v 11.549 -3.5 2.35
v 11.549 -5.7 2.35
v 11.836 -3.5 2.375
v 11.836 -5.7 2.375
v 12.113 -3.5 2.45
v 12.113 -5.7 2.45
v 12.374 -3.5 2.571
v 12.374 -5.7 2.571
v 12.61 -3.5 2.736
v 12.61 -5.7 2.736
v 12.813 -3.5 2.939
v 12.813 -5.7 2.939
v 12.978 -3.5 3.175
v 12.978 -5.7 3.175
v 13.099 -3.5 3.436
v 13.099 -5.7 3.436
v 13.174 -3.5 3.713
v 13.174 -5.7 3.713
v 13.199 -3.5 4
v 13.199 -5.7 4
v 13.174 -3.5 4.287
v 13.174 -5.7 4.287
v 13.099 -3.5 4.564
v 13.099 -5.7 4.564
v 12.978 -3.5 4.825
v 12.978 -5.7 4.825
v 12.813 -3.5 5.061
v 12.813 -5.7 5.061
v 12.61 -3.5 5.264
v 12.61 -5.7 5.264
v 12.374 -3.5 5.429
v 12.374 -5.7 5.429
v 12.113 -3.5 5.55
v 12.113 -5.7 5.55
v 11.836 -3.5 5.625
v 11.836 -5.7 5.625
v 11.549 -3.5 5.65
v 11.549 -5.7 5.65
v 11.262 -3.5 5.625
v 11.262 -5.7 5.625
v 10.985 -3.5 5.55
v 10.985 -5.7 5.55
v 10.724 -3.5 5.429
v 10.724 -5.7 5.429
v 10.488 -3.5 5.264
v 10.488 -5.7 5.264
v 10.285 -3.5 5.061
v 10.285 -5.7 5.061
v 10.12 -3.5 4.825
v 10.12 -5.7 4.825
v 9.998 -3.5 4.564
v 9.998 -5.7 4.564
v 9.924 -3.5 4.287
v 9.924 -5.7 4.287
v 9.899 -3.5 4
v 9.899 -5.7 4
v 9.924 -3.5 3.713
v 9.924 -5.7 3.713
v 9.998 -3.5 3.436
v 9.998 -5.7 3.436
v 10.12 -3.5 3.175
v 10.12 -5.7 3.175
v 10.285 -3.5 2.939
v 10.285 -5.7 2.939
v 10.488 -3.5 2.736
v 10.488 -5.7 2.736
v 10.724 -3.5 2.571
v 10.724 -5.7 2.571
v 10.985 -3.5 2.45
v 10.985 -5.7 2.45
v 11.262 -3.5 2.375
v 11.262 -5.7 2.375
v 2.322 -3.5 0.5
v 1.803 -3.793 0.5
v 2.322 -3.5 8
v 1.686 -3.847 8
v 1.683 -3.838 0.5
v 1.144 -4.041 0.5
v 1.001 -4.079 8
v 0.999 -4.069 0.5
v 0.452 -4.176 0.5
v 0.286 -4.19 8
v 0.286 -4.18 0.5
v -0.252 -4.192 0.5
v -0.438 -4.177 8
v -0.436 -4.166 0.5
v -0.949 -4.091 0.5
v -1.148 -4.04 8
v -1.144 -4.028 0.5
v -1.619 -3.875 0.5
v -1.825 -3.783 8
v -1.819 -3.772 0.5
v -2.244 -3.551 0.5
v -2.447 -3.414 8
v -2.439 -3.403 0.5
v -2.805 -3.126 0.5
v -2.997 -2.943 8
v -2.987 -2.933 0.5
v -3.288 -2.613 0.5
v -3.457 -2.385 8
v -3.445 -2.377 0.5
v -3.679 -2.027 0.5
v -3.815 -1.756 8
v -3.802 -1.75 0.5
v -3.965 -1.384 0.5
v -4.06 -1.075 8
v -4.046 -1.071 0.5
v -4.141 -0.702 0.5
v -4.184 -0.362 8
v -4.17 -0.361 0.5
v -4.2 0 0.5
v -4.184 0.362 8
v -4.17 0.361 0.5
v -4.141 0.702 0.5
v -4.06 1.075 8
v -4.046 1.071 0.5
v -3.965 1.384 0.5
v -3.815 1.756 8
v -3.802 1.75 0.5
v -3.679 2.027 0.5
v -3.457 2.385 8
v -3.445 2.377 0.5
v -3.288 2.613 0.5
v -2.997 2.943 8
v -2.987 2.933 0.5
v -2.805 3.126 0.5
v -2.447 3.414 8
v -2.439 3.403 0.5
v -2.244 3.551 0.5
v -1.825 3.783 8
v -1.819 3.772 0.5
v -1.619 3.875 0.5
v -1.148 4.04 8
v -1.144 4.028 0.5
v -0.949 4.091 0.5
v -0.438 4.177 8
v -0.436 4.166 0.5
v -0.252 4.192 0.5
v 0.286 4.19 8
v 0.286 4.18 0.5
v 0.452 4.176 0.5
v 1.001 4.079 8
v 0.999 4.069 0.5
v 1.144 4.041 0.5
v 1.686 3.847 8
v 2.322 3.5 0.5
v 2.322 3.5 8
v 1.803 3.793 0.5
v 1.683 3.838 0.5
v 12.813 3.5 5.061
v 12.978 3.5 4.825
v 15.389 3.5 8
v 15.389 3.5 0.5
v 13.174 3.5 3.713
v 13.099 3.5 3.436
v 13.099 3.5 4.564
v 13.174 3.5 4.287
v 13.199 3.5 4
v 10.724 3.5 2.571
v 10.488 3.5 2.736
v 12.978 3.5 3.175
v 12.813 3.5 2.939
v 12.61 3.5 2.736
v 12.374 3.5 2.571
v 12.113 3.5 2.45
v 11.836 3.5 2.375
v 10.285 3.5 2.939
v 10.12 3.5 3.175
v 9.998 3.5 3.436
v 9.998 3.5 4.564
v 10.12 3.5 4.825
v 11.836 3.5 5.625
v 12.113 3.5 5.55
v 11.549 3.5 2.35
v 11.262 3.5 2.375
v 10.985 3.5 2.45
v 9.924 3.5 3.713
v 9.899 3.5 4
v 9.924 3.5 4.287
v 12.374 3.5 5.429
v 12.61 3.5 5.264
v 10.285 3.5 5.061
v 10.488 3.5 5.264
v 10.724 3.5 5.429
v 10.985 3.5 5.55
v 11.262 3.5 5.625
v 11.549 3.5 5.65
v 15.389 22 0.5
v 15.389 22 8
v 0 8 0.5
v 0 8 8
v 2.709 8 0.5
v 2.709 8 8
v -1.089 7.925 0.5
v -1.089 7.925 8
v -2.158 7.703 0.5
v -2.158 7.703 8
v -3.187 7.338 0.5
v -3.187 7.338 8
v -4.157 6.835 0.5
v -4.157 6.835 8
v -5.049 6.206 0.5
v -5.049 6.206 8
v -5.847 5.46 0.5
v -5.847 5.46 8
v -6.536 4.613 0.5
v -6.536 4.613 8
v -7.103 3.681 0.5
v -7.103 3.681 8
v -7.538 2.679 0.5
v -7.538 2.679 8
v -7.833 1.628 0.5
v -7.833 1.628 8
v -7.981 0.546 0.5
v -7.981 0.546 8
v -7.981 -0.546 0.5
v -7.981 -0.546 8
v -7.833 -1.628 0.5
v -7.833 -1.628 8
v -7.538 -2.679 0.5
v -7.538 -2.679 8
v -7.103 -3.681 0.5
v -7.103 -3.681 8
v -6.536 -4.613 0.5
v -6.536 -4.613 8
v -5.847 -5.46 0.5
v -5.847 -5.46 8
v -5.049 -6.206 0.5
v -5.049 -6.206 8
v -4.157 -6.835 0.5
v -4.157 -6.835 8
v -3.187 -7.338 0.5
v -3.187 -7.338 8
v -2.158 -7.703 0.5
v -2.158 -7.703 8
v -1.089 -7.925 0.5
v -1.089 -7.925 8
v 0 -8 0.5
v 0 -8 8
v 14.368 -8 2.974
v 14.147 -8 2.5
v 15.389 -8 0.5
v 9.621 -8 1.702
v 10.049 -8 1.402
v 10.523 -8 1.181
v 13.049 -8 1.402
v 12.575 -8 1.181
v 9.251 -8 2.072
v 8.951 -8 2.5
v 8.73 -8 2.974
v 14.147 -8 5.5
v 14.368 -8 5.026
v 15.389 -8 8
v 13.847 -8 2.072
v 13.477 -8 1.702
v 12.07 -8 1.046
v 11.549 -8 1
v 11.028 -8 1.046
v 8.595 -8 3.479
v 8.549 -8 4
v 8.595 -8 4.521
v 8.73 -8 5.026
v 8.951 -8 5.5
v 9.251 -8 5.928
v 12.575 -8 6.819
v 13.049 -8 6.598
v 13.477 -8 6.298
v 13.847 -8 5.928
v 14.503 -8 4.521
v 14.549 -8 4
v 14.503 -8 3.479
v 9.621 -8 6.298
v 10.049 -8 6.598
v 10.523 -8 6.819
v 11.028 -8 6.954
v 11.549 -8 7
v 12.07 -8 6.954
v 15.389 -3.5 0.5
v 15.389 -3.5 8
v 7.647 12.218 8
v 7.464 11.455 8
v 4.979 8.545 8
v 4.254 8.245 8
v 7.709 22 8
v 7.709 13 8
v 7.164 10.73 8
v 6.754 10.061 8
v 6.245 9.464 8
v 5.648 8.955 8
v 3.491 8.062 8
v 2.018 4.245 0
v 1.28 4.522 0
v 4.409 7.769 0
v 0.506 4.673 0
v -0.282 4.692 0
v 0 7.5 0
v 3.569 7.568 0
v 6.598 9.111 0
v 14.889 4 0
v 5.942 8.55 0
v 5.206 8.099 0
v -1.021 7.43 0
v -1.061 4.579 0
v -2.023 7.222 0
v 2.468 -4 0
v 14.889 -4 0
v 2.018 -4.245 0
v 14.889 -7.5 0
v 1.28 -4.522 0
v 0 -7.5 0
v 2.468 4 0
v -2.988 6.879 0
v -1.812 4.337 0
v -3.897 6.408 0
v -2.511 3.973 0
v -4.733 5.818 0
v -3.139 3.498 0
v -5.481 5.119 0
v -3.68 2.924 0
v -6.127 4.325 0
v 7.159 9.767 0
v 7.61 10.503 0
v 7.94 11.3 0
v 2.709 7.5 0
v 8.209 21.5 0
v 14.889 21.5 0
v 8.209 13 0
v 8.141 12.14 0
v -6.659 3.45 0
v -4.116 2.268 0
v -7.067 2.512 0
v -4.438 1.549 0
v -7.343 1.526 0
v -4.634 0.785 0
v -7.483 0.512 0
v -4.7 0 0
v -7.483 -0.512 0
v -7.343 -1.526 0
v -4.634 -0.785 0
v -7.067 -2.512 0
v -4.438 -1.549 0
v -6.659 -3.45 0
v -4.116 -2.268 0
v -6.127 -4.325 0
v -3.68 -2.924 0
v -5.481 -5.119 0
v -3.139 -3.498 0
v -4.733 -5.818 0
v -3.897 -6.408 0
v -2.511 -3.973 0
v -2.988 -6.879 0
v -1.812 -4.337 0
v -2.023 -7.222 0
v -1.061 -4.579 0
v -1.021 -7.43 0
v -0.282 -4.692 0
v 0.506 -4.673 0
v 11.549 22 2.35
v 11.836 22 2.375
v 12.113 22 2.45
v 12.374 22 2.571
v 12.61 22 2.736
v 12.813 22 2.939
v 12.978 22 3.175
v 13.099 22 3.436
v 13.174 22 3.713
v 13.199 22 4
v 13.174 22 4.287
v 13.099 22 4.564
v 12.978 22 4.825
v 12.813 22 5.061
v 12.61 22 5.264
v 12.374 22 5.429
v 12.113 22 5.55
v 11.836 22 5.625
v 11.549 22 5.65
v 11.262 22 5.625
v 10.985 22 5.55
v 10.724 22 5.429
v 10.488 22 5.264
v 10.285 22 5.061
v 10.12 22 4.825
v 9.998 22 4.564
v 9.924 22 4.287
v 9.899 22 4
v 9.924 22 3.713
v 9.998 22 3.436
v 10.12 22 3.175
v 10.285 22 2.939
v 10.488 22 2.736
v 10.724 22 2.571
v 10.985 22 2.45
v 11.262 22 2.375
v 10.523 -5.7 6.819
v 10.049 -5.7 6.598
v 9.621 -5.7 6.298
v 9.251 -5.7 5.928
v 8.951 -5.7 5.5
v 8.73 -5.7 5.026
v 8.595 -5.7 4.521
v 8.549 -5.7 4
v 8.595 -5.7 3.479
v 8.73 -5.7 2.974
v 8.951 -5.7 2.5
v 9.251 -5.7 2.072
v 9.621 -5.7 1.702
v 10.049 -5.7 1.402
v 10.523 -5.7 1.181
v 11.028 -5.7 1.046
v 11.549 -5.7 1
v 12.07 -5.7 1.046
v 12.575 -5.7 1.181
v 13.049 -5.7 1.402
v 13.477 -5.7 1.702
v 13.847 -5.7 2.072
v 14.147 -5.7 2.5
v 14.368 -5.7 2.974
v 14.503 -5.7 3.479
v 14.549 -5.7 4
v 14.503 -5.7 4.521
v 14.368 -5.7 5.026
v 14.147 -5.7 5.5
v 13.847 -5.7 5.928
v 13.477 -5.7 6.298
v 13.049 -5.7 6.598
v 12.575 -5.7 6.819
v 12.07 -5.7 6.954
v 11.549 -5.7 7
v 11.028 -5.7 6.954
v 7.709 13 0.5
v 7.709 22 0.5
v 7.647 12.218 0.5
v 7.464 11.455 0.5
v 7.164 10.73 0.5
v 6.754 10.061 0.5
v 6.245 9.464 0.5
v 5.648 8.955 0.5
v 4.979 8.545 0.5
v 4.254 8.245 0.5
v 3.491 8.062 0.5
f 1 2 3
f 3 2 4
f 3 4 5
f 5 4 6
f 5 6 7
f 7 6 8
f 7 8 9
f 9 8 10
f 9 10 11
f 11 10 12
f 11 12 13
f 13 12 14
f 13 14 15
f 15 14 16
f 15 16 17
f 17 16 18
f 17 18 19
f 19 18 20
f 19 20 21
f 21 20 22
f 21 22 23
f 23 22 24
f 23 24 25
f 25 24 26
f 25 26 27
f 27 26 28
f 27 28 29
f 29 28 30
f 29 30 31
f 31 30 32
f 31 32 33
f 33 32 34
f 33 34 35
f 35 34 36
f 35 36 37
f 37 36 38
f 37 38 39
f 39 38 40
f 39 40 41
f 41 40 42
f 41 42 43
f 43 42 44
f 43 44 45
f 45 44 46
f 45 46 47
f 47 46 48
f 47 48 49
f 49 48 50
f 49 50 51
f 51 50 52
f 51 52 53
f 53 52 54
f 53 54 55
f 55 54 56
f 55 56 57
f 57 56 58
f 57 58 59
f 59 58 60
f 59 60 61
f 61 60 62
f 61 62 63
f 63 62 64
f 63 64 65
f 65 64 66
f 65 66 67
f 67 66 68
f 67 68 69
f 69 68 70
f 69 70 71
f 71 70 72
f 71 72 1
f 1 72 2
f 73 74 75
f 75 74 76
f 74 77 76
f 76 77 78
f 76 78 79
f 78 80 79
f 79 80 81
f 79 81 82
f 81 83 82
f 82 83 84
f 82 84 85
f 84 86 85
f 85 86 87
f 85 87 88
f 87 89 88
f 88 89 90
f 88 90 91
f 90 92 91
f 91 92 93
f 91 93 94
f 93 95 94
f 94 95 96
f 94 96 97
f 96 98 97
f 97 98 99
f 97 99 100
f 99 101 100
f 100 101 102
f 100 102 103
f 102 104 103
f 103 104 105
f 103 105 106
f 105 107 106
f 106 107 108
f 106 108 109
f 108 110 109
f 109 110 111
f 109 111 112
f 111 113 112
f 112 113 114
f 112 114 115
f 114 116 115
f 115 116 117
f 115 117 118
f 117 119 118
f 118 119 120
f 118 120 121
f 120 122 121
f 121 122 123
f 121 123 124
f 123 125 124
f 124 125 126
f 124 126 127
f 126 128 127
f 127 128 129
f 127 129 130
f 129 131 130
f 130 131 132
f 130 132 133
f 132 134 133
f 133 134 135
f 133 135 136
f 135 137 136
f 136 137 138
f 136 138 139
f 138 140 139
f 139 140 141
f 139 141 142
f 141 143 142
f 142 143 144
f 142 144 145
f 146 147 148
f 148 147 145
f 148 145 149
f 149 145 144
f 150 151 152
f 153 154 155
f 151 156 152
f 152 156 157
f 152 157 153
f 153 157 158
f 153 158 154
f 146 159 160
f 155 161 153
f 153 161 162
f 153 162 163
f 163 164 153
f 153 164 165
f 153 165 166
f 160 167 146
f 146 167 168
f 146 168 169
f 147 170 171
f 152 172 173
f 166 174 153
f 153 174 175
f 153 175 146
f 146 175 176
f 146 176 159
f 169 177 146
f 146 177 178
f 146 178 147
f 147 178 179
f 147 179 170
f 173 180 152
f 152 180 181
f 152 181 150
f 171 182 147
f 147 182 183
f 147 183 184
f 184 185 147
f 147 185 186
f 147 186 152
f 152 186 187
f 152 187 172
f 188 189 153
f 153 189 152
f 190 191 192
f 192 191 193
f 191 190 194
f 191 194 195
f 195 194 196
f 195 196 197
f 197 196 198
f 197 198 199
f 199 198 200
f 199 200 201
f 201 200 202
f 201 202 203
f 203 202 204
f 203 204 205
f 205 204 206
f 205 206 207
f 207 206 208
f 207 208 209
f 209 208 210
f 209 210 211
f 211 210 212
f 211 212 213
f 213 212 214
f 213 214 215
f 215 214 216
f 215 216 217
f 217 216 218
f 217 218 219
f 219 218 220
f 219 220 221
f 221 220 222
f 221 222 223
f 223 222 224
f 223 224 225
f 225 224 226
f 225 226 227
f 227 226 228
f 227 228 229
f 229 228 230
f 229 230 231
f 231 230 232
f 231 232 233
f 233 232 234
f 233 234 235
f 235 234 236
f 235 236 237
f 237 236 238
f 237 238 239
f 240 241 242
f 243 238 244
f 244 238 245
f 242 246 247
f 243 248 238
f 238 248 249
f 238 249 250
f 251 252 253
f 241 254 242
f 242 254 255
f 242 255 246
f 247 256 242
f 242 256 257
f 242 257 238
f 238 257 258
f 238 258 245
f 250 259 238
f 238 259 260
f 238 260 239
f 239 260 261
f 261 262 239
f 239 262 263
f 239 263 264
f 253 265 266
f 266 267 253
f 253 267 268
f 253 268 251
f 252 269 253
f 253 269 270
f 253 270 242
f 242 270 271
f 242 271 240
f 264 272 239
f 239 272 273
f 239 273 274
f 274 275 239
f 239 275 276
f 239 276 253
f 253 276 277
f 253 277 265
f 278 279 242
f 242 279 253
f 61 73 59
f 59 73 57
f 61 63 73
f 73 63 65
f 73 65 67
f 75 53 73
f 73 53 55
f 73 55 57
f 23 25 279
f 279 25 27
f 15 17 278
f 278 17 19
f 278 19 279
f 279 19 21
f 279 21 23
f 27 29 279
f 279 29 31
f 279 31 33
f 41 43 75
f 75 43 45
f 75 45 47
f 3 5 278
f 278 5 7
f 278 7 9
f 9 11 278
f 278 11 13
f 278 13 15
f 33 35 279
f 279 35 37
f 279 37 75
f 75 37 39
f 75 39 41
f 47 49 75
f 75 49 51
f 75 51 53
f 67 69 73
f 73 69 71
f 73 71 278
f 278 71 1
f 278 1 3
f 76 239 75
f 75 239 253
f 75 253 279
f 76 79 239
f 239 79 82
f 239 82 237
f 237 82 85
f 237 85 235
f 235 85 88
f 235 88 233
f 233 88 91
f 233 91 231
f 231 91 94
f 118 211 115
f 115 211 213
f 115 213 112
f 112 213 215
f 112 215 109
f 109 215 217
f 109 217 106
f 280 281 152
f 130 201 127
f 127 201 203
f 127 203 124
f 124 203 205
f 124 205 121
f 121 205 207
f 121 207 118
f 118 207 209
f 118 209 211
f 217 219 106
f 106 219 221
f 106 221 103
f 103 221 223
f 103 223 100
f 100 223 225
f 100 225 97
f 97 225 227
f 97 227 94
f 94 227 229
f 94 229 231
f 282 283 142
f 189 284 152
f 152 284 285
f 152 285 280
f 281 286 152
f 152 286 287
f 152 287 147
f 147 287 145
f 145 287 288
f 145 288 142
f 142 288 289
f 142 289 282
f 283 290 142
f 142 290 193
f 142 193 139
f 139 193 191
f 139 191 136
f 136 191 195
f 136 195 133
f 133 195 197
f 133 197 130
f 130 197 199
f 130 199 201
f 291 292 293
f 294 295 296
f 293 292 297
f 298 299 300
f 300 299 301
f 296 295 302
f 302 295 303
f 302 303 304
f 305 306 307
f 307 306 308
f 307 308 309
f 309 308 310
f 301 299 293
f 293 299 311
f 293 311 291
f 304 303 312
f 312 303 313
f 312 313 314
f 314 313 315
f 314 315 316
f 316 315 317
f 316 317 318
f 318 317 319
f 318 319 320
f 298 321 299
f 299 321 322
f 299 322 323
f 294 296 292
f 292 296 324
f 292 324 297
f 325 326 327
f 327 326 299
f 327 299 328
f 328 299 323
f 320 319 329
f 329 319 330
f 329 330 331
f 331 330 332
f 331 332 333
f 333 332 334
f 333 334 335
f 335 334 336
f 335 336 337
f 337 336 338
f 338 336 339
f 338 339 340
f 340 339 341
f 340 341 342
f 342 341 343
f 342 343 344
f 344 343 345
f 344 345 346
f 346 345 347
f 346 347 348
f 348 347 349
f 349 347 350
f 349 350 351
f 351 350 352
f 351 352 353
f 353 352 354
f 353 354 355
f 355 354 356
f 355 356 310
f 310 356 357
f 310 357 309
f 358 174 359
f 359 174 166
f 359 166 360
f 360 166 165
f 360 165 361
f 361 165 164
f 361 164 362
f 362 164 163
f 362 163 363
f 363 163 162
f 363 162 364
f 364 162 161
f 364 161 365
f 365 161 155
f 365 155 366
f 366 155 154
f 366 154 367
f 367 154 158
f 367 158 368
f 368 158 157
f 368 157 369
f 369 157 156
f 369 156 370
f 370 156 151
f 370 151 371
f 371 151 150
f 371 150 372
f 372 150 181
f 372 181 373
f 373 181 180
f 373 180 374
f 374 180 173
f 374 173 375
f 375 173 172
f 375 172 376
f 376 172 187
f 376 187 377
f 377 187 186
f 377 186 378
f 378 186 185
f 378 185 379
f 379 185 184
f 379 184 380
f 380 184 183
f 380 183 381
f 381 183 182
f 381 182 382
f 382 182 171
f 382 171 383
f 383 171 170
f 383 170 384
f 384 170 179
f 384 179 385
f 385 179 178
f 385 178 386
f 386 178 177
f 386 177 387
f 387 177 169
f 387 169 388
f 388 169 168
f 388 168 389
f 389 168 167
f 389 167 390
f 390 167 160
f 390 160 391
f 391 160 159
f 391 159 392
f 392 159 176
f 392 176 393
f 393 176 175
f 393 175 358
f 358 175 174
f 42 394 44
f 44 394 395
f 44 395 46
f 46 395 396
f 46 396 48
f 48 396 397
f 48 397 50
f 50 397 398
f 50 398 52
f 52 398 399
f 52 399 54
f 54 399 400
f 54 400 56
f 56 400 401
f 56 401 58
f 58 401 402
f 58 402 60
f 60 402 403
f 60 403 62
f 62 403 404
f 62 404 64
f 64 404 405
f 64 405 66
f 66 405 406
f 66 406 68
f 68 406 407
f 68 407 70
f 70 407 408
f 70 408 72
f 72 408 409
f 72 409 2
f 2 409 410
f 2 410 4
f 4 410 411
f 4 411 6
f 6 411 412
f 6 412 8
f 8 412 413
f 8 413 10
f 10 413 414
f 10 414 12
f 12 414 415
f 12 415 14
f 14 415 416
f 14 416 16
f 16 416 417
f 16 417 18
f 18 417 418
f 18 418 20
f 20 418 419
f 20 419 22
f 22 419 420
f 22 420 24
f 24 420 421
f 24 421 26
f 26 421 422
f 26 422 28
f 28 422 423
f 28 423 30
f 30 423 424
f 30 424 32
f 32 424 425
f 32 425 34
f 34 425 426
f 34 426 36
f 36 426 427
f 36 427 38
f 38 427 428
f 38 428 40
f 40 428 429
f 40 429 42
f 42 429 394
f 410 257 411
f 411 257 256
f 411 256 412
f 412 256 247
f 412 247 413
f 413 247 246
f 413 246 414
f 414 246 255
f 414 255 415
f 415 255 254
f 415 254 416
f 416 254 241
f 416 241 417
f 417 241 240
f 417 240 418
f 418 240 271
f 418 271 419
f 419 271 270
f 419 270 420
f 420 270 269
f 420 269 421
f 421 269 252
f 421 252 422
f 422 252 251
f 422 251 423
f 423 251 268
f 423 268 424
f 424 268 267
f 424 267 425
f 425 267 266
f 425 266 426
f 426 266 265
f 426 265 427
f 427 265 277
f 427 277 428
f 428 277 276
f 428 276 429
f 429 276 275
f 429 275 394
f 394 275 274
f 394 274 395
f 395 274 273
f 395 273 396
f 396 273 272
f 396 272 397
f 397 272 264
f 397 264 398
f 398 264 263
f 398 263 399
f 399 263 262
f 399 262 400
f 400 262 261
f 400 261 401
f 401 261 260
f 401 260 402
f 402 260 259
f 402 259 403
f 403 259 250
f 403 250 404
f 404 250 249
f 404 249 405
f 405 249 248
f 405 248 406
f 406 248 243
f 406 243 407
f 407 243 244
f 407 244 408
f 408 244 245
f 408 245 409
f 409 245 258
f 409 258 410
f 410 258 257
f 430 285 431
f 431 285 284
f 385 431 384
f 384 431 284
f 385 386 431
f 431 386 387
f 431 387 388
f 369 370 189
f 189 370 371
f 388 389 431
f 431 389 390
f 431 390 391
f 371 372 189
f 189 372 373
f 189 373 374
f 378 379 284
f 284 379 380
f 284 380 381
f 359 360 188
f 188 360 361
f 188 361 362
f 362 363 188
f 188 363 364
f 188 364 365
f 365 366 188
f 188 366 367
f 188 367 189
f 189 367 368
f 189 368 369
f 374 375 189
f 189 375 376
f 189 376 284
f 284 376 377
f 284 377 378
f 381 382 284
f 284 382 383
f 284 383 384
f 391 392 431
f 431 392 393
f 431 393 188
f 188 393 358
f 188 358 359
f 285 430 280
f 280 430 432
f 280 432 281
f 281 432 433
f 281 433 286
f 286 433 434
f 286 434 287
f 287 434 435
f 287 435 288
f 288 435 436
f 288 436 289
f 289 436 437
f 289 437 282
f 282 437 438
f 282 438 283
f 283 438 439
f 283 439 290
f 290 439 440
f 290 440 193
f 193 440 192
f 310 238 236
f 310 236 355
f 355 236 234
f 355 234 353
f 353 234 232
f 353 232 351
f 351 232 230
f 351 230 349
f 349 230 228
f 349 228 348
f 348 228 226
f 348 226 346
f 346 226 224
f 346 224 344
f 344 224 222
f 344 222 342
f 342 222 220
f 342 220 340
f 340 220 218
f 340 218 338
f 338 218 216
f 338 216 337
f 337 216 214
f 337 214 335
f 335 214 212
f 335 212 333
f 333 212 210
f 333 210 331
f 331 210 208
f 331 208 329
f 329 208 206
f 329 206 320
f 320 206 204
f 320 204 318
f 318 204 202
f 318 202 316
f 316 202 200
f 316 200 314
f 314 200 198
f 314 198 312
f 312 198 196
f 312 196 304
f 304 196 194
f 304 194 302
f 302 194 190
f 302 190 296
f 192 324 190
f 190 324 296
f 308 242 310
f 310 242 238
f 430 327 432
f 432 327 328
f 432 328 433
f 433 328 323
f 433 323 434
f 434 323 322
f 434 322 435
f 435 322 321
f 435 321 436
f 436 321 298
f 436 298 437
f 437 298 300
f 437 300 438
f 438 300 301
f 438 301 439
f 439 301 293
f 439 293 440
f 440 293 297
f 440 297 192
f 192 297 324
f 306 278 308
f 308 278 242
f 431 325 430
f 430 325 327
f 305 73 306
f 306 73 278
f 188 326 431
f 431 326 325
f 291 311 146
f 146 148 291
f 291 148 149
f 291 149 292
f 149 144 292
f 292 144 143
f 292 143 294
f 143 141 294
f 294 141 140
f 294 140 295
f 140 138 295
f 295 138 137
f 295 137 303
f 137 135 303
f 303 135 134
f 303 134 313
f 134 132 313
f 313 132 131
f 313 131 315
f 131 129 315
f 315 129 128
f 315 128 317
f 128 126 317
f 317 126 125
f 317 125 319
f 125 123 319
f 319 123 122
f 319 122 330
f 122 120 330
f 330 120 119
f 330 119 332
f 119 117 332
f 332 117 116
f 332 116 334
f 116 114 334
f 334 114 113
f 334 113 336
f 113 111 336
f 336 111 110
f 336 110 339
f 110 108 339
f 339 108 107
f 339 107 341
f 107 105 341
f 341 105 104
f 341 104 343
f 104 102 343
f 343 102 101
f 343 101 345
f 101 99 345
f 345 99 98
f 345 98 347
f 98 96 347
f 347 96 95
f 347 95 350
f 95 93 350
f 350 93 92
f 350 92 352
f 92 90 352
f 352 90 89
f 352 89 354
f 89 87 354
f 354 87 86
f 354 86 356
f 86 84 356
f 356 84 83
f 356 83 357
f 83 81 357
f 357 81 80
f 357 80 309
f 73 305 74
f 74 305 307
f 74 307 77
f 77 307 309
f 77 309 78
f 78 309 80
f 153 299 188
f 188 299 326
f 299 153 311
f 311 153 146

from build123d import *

# Parameters (mm, degrees)
BOSS_EXTRUDE1_DEPTH = 8
SKETCH2_R           = 1.65
CUT_EXTRUDE1_DEPTH  = 24.597050759
SKETCH3_R           = 3
CUT_EXTRUDE2_DEPTH  = 2.3
SKETCH4_W           = 7.68
SKETCH4_H           = 8
SKETCH4_R           = 1.65
BOSS_EXTRUDE2_DEPTH = 18.5
FILLET1_R           = 5
CHAMFER1_SIZE       = 0.5


with BuildPart() as part:
    # Sketch1 → Boss-Extrude1 (new body)
    with BuildSketch(Plane.XY):
        with BuildLine():
            Line((0, 8), (15.38898322, 8))
            Line((15.38898322, 8), (15.38898322, 3.5))
            Line((15.38898322, 3.5), (2.321637353, 3.5))
            ThreePointArc((2.321637353, 3.5), (-4.2, 0), (2.321637353, -3.5))
            Line((2.321637353, -3.5), (15.38898322, -3.5))
            Line((15.38898322, -3.5), (15.38898322, -8))
            Line((15.38898322, -8), (0, -8))
            ThreePointArc((0, -8), (-8, 0), (0, 8))
        make_face()
    extrude(amount=BOSS_EXTRUDE1_DEPTH)

    # Sketch2 → Cut-Extrude1 (cut, through all)
    with BuildSketch(Plane.XZ.offset(8)):
        with Locations(Location((11.54898322, 4, 0), (0, 0, 270))):
            Circle(SKETCH2_R)
    extrude(amount=-CUT_EXTRUDE1_DEPTH, mode=Mode.SUBTRACT)

    # Sketch3 → Cut-Extrude2 (cut)
    with BuildSketch(Plane.XZ.offset(8)):
        with Locations(Location((11.54898322, 4, 0), (0, 0, 270))):
            Circle(SKETCH3_R)
    extrude(amount=-CUT_EXTRUDE2_DEPTH, mode=Mode.SUBTRACT)

    # Sketch4 → Boss-Extrude2 (add)
    with BuildSketch(Plane.XZ.offset(-3.5)):
        with Locations((11.54898322, 4)):
            Rectangle(SKETCH4_W, SKETCH4_H)
        with Locations(Location((11.54898322, 4, 0), (0, 0, 270))):
            Circle(SKETCH4_R, mode=Mode.SUBTRACT)
    extrude(amount=-BOSS_EXTRUDE2_DEPTH)

    # Fillet1
    fillet1_edges = [part.edges().sort_by_distance(p)[0] for p in [
        (7.70898322, 8, 4),
    ]]
    fillet(fillet1_edges, radius=FILLET1_R)

    # Chamfer1
    chamfer1_edges = [part.edges().sort_by_distance(p)[0] for p in [
        (8.855310287, 3.5, 0),
        (-4.2, 0, 0),
        (11.54898322, 22, 0),
        (7.70898322, 17.5, 0),
        (1.35449161, 8, 0),
        (6.244517126, 9.464466094, 0),
        (8.855310287, -3.5, 0),
        (15.38898322, -5.75, 0),
        (7.69449161, -8, 0),
        (-8, 0, 0),
        (15.38898322, 12.75, 0),
    ]]
    chamfer(chamfer1_edges, length=CHAMFER1_SIZE)


solid = part.part
